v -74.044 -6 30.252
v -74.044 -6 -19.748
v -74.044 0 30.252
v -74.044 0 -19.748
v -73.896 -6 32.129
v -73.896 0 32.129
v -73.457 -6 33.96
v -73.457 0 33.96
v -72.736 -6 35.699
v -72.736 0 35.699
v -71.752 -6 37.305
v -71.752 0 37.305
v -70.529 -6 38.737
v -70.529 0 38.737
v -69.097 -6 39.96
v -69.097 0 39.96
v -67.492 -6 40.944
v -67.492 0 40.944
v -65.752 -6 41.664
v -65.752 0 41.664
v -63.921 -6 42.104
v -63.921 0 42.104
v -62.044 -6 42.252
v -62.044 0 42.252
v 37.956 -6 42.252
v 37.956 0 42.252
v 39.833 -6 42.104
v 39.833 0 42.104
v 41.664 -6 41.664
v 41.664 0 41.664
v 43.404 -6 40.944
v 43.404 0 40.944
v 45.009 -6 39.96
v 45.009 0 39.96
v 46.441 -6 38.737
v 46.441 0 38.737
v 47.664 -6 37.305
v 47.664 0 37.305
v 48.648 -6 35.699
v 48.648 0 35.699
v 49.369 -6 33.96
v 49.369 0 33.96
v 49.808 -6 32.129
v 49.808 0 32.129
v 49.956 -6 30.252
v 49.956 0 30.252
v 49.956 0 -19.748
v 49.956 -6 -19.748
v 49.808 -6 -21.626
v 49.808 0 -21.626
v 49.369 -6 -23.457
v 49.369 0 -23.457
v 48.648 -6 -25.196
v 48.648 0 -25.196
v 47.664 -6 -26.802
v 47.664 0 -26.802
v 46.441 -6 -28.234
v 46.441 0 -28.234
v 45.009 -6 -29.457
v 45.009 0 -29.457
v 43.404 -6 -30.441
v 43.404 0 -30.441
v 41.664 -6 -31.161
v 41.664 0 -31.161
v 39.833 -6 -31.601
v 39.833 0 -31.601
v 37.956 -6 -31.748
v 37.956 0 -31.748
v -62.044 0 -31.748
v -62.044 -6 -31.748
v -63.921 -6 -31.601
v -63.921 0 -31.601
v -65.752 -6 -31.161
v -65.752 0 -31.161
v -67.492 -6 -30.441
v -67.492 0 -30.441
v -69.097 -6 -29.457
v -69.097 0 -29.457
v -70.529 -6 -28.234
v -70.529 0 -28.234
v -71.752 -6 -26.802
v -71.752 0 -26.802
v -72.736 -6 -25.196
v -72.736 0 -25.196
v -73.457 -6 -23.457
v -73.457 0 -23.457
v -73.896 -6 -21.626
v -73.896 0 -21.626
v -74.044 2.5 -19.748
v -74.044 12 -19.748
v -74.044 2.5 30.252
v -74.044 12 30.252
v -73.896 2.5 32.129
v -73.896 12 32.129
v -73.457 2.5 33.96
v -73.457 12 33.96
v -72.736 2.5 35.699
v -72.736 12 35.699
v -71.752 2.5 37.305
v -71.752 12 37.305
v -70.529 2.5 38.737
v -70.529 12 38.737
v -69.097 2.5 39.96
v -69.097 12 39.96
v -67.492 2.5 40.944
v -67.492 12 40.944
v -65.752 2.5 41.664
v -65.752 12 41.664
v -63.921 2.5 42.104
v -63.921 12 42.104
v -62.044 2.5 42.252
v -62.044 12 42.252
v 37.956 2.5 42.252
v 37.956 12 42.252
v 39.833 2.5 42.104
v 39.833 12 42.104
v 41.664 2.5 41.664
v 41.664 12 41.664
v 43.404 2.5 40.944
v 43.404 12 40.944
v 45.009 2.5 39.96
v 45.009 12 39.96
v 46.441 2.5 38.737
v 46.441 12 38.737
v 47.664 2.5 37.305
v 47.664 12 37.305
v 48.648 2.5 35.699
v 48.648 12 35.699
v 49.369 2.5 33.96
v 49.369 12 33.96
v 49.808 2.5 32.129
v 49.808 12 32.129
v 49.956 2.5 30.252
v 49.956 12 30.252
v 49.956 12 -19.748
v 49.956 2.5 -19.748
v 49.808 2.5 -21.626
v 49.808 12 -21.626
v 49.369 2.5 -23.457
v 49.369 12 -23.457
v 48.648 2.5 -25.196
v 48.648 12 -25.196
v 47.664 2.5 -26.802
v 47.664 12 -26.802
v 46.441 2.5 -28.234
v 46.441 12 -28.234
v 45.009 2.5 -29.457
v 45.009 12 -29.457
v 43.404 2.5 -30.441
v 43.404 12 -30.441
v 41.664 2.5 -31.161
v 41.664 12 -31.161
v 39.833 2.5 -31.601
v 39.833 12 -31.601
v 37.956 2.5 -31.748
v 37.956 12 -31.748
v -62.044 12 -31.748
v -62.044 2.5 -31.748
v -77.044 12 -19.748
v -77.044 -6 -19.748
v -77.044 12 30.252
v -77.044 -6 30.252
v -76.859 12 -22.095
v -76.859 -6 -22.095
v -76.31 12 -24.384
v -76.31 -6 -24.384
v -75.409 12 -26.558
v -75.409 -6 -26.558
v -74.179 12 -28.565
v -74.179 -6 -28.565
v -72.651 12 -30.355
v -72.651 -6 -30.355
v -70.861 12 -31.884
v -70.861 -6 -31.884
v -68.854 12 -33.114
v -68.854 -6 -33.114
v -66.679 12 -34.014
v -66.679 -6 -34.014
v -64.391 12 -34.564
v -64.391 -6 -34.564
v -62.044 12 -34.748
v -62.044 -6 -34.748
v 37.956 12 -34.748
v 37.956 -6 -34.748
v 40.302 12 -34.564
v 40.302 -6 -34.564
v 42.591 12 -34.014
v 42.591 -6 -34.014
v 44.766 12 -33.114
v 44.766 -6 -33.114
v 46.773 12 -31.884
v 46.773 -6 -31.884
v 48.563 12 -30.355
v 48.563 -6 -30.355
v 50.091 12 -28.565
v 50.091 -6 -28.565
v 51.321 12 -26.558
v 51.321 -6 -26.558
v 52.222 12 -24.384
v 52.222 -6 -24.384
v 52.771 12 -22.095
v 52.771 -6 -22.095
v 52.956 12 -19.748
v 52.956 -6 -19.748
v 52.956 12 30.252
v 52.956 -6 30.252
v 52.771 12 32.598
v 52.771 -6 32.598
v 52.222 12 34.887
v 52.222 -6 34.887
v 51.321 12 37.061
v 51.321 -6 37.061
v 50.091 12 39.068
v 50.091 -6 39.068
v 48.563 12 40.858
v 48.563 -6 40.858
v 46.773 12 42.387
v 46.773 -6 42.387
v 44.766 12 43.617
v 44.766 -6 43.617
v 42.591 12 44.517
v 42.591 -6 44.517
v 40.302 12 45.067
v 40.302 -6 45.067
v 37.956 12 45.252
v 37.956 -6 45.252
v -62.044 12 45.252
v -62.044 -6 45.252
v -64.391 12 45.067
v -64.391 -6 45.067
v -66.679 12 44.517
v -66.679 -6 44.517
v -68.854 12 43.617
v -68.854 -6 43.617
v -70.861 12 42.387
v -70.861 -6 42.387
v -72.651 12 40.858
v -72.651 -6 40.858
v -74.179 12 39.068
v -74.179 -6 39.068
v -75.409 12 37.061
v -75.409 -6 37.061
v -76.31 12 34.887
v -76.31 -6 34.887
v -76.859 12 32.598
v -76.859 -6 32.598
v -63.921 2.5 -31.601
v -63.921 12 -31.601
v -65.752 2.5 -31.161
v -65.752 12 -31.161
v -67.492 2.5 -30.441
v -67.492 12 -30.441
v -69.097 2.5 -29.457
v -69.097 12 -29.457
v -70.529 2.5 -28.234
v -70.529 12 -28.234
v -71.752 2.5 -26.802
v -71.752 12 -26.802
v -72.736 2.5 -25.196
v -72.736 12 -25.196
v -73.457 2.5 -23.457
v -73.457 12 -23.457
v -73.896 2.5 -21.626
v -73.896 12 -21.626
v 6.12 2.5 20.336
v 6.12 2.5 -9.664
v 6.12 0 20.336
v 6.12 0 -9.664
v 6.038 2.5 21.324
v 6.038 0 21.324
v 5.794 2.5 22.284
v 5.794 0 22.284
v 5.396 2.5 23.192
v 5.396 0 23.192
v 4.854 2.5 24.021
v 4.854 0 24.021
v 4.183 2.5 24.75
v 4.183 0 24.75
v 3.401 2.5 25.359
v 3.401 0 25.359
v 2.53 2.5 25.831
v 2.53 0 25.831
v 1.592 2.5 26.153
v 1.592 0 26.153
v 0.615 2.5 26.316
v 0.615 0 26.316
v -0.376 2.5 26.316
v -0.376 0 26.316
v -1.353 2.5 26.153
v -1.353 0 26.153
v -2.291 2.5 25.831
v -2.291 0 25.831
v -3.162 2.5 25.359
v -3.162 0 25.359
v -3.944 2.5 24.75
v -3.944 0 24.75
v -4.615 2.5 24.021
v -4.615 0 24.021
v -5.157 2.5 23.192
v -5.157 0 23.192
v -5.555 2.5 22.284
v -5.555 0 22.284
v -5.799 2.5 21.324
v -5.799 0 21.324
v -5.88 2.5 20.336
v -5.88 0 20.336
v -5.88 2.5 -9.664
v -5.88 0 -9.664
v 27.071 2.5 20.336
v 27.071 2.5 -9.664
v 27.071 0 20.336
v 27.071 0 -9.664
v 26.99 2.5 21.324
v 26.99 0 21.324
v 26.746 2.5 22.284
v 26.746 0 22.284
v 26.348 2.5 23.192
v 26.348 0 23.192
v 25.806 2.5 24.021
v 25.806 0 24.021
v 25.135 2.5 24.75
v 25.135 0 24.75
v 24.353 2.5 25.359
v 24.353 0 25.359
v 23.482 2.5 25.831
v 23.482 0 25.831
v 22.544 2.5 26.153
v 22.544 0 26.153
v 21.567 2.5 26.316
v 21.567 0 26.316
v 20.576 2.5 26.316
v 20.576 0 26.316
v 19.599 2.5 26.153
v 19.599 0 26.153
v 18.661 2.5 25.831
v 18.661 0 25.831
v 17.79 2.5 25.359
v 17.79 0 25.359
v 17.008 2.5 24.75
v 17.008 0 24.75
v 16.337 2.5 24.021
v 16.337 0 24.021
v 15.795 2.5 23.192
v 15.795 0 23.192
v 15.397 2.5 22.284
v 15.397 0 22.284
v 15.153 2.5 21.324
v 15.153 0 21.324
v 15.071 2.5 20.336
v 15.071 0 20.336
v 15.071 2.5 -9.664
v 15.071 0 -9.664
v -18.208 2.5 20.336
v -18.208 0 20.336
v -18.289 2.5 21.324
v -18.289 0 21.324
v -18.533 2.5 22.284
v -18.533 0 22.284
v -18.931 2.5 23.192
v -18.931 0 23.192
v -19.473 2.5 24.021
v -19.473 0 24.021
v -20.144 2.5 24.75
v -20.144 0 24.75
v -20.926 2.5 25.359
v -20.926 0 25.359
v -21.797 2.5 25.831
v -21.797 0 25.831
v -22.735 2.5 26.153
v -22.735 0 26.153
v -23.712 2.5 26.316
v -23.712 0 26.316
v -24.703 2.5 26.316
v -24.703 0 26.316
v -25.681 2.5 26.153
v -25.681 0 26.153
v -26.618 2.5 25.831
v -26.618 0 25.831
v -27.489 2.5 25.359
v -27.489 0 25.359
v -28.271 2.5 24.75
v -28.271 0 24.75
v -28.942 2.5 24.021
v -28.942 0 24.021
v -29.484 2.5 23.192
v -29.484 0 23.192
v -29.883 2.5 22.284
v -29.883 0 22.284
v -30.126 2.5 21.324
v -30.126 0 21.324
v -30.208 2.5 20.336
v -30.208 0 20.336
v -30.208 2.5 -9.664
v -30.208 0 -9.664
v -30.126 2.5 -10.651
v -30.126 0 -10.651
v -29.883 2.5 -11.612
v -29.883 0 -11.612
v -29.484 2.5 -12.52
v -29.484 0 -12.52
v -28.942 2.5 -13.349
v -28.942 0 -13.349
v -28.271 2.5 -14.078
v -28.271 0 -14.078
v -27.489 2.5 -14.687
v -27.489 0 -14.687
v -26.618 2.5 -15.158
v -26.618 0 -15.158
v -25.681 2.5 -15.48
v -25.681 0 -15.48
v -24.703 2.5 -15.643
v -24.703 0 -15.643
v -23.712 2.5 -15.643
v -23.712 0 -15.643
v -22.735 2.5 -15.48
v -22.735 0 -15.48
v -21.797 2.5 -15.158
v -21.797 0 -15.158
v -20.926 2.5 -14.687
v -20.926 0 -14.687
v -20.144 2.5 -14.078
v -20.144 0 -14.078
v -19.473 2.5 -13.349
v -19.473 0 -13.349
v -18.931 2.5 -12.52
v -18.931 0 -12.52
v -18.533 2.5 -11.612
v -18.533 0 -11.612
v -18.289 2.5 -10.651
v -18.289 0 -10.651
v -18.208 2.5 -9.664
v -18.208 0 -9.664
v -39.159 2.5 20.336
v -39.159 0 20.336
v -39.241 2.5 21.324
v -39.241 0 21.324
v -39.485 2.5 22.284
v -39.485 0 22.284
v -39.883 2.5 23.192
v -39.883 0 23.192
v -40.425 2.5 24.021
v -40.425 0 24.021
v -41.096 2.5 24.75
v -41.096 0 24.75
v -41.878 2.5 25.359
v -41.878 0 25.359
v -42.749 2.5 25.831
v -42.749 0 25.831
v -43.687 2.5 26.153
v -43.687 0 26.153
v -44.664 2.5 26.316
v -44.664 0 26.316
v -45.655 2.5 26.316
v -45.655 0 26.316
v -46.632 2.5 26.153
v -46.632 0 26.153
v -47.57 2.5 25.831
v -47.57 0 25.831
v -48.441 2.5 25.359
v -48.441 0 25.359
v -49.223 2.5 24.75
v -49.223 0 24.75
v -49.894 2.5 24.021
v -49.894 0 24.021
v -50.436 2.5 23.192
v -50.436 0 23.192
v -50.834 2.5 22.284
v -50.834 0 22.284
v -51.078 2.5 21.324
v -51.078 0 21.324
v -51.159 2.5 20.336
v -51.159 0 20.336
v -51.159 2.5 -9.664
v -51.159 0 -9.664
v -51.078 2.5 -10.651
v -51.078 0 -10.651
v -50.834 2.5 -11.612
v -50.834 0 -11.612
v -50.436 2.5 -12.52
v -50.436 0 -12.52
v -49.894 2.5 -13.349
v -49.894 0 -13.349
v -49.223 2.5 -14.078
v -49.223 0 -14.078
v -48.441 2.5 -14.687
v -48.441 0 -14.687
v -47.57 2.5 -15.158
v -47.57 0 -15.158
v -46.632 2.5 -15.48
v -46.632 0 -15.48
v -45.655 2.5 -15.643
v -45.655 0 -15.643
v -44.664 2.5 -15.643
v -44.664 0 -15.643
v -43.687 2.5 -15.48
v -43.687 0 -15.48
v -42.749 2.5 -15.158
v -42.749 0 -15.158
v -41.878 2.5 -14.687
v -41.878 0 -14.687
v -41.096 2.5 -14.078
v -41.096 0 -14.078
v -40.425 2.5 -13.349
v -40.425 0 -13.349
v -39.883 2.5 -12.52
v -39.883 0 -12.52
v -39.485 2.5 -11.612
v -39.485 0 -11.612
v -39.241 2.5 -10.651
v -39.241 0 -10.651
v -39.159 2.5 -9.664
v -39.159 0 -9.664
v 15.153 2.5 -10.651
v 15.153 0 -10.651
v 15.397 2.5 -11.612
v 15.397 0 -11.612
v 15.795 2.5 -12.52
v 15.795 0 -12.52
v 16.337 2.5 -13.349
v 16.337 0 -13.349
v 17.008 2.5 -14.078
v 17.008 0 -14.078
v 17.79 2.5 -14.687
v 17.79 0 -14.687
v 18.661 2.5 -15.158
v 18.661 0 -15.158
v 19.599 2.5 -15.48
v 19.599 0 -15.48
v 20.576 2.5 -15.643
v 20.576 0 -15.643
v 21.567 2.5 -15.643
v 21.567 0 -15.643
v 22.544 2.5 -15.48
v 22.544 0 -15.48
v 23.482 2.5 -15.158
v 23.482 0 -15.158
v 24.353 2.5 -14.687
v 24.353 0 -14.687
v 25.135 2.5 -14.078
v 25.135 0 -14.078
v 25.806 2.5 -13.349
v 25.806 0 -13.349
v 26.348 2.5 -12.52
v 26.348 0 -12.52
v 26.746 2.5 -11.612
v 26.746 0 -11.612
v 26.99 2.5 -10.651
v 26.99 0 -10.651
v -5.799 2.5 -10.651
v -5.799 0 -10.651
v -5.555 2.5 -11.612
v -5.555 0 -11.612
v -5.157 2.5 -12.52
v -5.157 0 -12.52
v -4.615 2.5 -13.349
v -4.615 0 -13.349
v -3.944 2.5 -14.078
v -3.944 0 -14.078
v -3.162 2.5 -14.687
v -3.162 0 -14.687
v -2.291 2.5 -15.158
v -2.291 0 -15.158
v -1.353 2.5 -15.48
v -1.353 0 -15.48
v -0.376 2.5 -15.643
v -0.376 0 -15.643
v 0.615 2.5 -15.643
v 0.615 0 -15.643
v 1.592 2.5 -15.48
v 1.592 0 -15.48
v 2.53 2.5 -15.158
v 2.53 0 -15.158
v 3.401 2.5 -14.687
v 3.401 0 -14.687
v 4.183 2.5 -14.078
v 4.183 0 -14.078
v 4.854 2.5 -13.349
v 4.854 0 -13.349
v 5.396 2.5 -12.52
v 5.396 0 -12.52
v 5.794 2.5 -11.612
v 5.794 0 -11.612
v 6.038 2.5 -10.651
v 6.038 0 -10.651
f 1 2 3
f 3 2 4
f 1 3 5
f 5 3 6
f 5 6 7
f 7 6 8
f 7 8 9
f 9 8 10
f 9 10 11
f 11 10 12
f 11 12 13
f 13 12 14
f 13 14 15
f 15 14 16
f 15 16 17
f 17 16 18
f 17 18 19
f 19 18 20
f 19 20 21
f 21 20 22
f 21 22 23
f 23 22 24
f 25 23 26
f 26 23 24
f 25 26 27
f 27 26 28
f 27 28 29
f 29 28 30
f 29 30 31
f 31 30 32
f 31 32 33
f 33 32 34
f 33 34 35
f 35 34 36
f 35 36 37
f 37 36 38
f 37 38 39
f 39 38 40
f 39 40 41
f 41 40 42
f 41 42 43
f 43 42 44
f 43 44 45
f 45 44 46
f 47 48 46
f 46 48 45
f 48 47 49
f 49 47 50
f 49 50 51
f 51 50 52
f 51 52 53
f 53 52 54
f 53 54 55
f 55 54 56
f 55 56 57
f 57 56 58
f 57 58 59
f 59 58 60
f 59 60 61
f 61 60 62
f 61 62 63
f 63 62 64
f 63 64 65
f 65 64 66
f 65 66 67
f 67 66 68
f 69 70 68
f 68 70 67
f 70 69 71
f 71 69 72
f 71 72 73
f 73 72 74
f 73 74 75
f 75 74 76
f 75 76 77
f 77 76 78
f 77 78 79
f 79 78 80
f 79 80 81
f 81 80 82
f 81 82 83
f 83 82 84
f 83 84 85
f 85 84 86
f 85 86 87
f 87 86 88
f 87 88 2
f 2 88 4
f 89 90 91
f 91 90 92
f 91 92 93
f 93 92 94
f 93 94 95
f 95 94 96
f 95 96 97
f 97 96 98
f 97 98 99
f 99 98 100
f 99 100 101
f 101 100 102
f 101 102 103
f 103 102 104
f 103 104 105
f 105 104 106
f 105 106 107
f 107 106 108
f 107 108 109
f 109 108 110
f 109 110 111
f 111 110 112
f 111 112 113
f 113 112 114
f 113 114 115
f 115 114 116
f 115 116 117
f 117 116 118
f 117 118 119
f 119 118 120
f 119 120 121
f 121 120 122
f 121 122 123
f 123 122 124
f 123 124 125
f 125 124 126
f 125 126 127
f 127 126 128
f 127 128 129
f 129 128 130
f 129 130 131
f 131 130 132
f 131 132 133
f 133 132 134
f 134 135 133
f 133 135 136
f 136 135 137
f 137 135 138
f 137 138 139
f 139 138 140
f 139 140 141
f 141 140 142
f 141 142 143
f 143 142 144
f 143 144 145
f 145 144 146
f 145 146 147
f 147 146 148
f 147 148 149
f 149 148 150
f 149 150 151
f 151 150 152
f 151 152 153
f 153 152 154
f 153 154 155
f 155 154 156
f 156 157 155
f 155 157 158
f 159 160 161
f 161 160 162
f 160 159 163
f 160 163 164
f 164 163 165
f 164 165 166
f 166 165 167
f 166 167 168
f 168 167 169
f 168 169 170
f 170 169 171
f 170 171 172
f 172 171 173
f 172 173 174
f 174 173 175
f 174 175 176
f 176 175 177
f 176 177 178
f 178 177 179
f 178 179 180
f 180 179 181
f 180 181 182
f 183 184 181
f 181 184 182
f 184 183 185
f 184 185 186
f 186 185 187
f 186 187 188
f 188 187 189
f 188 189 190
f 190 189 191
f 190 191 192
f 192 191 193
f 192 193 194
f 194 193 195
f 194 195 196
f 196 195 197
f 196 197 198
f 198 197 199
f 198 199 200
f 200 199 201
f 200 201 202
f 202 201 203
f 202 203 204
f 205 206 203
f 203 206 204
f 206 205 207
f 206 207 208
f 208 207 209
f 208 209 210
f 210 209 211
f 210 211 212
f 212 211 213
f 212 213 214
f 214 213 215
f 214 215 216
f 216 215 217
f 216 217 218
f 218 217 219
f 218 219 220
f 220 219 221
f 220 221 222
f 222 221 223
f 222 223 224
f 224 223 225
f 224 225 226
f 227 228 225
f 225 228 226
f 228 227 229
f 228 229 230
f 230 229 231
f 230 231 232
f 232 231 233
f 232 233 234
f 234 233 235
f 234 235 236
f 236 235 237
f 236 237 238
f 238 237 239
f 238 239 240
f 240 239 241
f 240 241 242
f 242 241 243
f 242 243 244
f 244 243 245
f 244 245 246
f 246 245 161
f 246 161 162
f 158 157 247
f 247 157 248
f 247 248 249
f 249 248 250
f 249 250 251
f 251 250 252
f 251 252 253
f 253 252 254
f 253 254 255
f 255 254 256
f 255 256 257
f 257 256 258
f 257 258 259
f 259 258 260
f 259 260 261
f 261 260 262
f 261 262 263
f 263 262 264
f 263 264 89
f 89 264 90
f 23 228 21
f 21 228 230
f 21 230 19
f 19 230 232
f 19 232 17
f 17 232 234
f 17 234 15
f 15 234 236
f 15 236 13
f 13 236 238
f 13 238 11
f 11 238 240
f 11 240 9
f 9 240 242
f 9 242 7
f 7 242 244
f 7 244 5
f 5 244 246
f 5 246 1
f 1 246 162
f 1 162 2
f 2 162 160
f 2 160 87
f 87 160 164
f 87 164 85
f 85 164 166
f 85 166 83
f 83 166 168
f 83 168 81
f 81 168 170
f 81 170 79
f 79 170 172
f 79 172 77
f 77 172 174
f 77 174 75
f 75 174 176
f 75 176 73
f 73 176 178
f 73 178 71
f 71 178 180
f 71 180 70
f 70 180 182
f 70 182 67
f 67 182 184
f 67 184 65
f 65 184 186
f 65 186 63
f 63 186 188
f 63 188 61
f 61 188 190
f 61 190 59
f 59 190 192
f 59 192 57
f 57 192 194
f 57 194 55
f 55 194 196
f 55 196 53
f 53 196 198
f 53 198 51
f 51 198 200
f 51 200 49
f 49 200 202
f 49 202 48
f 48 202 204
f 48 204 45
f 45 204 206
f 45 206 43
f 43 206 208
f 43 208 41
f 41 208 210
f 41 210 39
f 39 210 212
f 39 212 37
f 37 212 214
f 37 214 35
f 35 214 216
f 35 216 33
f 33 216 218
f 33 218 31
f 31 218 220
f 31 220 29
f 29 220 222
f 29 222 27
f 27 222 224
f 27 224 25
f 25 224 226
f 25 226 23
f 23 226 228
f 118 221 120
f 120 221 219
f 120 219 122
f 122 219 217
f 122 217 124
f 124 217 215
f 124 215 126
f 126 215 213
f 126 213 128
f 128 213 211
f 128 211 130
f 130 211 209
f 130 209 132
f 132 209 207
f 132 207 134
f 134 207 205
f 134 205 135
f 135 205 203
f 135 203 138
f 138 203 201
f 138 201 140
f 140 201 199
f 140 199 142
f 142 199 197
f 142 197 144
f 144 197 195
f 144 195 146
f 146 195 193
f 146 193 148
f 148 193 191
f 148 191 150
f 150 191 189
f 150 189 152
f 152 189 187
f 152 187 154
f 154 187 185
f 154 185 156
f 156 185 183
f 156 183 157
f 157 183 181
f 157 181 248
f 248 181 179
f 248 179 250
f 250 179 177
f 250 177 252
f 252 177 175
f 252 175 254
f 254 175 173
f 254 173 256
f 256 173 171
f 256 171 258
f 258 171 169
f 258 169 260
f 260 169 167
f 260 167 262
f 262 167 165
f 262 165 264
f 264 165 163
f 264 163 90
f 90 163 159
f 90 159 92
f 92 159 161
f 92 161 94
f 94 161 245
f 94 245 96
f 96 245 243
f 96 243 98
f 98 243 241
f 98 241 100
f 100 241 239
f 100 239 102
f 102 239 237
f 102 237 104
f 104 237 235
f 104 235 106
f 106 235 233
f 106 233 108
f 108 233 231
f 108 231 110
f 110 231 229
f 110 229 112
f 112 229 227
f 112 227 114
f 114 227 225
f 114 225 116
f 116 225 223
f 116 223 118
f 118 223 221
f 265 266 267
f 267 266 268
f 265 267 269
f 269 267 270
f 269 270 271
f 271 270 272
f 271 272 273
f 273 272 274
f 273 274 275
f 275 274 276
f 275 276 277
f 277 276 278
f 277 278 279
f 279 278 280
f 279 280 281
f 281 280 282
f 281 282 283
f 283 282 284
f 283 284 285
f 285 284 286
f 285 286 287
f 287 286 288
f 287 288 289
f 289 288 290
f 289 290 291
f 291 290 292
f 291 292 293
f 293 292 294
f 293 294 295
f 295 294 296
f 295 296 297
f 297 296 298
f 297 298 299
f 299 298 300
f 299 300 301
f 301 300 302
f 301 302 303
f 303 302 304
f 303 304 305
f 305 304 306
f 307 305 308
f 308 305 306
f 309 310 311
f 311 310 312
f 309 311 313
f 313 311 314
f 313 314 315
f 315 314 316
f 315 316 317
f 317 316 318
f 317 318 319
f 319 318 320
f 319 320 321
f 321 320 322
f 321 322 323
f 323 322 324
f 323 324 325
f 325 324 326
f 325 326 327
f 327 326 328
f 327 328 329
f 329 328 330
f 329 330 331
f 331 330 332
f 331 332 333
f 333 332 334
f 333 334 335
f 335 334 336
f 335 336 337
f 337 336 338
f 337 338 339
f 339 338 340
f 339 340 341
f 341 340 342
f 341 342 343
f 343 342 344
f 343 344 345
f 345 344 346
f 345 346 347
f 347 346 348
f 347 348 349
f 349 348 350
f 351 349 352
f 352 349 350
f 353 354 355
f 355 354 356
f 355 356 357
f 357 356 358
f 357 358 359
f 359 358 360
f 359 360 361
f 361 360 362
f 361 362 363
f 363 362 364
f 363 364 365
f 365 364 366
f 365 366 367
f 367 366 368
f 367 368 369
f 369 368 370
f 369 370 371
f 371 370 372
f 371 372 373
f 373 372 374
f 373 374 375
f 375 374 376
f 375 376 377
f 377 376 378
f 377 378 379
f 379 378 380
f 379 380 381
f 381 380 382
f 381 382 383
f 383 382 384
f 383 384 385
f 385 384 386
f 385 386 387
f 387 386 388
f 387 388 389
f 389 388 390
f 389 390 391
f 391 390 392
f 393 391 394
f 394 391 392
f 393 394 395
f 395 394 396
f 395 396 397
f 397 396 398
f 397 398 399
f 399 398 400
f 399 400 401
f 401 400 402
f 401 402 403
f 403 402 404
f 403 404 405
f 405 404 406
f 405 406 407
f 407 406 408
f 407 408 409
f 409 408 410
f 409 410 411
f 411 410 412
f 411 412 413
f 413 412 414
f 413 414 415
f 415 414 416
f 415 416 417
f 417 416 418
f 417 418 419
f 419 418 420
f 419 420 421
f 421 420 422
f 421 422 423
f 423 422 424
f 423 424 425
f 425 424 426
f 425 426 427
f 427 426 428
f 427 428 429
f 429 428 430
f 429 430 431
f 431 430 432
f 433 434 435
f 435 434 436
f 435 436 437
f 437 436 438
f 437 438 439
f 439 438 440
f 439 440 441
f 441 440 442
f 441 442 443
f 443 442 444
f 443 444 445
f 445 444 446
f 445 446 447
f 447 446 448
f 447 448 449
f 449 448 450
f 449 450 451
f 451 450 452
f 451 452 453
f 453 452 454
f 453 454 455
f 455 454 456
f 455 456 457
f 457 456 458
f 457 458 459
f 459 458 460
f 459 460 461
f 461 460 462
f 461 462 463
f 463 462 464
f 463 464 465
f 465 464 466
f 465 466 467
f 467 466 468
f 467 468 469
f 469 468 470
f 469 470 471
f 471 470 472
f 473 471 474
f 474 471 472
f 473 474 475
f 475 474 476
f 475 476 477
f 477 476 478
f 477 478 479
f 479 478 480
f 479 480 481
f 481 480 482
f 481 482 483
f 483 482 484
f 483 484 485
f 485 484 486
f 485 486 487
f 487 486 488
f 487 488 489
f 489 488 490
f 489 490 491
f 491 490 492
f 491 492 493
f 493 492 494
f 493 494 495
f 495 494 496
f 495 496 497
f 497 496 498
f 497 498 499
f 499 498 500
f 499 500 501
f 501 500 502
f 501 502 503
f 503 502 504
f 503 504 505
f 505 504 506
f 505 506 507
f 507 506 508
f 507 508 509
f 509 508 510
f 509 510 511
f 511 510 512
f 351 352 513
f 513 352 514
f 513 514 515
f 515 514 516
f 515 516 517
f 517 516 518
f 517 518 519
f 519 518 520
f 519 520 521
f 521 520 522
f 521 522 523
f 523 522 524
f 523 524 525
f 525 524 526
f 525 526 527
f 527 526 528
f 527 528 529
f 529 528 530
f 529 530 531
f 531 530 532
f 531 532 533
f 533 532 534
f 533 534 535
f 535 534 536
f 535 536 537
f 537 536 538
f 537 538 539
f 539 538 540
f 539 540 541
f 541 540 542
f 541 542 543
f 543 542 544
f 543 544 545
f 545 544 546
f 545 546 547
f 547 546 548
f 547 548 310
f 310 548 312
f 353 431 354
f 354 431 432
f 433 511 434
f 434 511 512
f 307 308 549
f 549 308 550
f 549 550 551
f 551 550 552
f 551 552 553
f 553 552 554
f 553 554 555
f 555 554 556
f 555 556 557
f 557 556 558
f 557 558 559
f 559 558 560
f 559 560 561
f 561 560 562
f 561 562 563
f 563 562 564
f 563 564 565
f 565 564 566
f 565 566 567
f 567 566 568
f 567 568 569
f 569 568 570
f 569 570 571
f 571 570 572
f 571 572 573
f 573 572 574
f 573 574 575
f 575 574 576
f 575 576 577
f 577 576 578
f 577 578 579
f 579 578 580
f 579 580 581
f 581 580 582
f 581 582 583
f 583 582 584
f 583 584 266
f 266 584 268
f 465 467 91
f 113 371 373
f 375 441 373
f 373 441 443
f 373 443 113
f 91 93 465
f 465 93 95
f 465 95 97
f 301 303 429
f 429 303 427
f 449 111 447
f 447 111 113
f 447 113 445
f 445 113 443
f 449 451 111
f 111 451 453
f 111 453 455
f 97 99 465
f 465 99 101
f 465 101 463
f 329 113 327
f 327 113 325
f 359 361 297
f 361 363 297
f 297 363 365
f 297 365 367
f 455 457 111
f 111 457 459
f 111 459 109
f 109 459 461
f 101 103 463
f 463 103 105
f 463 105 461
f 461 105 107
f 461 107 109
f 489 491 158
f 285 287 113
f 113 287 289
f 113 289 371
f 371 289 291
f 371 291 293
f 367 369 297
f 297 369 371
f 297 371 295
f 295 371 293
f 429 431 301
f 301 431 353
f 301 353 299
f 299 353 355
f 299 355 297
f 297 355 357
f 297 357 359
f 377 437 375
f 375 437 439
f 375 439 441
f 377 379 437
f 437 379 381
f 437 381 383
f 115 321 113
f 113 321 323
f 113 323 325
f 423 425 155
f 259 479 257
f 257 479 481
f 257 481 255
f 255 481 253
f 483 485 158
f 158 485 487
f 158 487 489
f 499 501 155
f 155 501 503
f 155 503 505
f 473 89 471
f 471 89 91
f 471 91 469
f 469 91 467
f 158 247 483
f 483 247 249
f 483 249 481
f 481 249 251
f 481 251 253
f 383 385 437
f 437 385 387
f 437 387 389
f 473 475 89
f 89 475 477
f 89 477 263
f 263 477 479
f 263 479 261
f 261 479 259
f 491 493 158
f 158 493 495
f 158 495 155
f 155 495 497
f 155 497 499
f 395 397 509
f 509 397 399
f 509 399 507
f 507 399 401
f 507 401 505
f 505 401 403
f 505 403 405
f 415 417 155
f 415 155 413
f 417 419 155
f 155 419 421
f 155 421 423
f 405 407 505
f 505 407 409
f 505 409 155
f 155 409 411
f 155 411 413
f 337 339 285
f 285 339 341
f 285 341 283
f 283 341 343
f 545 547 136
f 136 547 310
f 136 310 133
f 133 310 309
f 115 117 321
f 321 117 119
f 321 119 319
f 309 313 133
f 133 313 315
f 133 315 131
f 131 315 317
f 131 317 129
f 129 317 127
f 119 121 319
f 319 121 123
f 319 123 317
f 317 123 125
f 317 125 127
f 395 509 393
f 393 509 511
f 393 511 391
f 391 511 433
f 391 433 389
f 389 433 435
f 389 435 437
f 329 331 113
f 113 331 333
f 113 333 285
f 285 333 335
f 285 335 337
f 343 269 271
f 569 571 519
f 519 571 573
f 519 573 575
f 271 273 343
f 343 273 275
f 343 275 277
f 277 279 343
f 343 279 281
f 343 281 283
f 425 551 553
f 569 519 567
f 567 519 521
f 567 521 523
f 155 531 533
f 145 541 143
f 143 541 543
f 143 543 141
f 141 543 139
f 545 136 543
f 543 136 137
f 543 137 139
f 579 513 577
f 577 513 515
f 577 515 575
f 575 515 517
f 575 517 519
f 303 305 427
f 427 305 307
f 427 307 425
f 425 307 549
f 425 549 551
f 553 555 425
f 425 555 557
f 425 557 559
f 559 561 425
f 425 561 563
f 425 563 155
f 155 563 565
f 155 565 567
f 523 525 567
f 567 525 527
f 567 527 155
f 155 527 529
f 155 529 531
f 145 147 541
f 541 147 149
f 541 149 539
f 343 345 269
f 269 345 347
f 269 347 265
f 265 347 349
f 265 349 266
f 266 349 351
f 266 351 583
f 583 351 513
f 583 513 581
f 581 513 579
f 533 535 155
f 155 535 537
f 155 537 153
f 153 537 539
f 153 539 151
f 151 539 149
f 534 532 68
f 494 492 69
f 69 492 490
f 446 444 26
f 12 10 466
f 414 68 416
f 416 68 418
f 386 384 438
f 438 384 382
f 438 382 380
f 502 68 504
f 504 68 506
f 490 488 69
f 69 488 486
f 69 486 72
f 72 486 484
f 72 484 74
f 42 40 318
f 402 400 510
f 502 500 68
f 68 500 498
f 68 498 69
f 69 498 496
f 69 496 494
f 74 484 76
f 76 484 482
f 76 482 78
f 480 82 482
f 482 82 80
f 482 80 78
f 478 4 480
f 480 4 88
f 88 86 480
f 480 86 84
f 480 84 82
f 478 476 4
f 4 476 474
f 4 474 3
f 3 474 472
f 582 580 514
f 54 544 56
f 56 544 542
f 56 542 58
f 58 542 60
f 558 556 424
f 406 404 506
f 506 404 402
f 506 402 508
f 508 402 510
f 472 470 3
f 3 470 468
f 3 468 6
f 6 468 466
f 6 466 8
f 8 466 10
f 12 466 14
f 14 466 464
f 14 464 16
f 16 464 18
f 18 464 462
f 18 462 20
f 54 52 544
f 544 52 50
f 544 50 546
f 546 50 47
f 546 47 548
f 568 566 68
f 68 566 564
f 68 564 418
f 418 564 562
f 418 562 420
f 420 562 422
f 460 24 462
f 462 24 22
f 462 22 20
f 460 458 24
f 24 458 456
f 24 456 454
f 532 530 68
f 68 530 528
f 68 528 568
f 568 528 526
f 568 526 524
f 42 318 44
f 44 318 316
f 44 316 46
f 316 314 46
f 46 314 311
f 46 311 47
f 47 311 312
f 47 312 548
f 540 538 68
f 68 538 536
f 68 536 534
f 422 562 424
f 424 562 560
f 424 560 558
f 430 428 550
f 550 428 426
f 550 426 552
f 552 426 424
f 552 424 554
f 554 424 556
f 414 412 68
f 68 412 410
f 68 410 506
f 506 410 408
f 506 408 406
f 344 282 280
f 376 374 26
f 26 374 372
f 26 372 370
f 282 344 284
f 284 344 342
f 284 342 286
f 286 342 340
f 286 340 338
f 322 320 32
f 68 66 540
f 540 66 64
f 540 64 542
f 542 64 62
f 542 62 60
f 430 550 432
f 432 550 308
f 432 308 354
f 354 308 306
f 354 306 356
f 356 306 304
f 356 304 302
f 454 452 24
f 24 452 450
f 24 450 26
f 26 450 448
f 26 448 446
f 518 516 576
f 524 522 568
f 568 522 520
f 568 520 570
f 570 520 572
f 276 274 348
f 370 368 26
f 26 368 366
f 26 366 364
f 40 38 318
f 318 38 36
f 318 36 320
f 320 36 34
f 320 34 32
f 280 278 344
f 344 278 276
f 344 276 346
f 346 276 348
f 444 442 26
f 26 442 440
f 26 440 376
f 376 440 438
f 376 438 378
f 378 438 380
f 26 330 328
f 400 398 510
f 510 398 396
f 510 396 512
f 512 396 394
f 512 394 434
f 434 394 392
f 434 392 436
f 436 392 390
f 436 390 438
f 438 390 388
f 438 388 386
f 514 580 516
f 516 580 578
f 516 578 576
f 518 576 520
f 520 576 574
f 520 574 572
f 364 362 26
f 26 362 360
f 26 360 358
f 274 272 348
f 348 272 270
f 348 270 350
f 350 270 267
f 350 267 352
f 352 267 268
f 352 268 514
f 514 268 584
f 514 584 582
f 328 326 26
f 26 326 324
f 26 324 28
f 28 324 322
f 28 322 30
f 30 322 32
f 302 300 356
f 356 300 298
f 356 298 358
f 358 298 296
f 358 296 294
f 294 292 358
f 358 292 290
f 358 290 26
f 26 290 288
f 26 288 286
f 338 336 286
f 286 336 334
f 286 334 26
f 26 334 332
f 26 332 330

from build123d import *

# Parameters (mm, degrees)
BOSS_EXTRUDE1_DEPTH      = 12
BOSS_EXTRUDE1_DEPTH_BACK = 6
BOSS_EXTRUDE2_DEPTH      = 2.5


with BuildPart() as part:
    # Sketch1 → Boss-Extrude1 (new, two sides: drawn at the far end of the back side and taken through both)
    with BuildSketch(Plane(origin=(0, 0, 0), x_dir=(1, 0, 0), z_dir=(0, 1, 0)).offset(-BOSS_EXTRUDE1_DEPTH_BACK)):
        with BuildLine():
            Line((37.955974843, 34.748427673), (-62.044025157, 34.748427673))
            ThreePointArc((-62.044025157, 34.748427673), (-72.650626875, 30.355029391), (-77.044025157, 19.748427673))
            Line((-77.044025157, 19.748427673), (-77.044025157, -30.251572327))
            ThreePointArc((-77.044025157, -30.251572327), (-72.650626875, -40.858174045), (-62.044025157, -45.251572327))
            Line((-62.044025157, -45.251572327), (37.955974843, -45.251572327))
            ThreePointArc((37.955974843, -45.251572327), (48.562576561, -40.858174045), (52.955974843, -30.251572327))
            Line((52.955974843, -30.251572327), (52.955974843, 19.748427673))
            ThreePointArc((52.955974843, 19.748427673), (48.562576561, 30.355029391), (37.955974843, 34.748427673))
        make_face()
        with BuildLine():
            ThreePointArc((-74.044025157, 19.748427673), (-70.529306531, 28.233709047), (-62.044025157, 31.748427673))
            Line((-62.044025157, 31.748427673), (37.955974843, 31.748427673))
            ThreePointArc((37.955974843, 31.748427673), (46.441256217, 28.233709047), (49.955974843, 19.748427673))
            Line((49.955974843, 19.748427673), (49.955974843, -30.251572327))
            ThreePointArc((49.955974843, -30.251572327), (46.441256217, -38.736853701), (37.955974843, -42.251572327))
            Line((37.955974843, -42.251572327), (-62.044025157, -42.251572327))
            ThreePointArc((-62.044025157, -42.251572327), (-70.529306531, -38.736853701), (-74.044025157, -30.251572327))
            Line((-74.044025157, -30.251572327), (-74.044025157, 19.748427673))
        make_face(mode=Mode.SUBTRACT)
    extrude(amount=BOSS_EXTRUDE1_DEPTH + BOSS_EXTRUDE1_DEPTH_BACK)

    # Sketch1<3> → Boss-Extrude2 (add)
    with BuildSketch(Plane(origin=(0, 0, 0), x_dir=(1, 0, 0), z_dir=(0, 1, 0))):
        with BuildLine():
            Line((37.955974843, 31.748427673), (-62.044025157, 31.748427673))
            ThreePointArc((-62.044025157, 31.748427673), (-70.529306531, 28.233709047), (-74.044025157, 19.748427673))
            Line((-74.044025157, 19.748427673), (-74.044025157, -30.251572327))
            ThreePointArc((-74.044025157, -30.251572327), (-70.529306531, -38.736853701), (-62.044025157, -42.251572327))
            Line((-62.044025157, -42.251572327), (37.955974843, -42.251572327))
            ThreePointArc((37.955974843, -42.251572327), (46.441256217, -38.736853701), (49.955974843, -30.251572327))
            Line((49.955974843, -30.251572327), (49.955974843, 19.748427673))
            ThreePointArc((49.955974843, 19.748427673), (46.441256217, 28.233709047), (37.955974843, 31.748427673))
        make_face()
        with BuildLine():
            ThreePointArc((-51.159476074, 9.66385349), (-45.159476074, 15.66385349), (-39.159476074, 9.66385349))
            Line((-39.159476074, 9.66385349), (-39.159476074, -20.33614651))
            ThreePointArc((-39.159476074, -20.33614651), (-45.159476074, -26.33614651), (-51.159476074, -20.33614651))
            Line((-51.159476074, -20.33614651), (-51.159476074, 9.66385349))
        make_face(mode=Mode.SUBTRACT)
        with BuildLine():
            ThreePointArc((-30.207633374, 9.66385349), (-24.207633374, 15.66385349), (-18.207633374, 9.66385349))
            Line((-18.207633374, 9.66385349), (-18.207633374, -20.33614651))
            ThreePointArc((-18.207633374, -20.33614651), (-24.207633374, -26.33614651), (-30.207633374, -20.33614651))
            Line((-30.207633374, -20.33614651), (-30.207633374, 9.66385349))
        make_face(mode=Mode.SUBTRACT)
        with BuildLine():
            Line((-5.880416941, -20.33614651), (-5.880416941, 9.66385349))
            ThreePointArc((-5.880416941, 9.66385349), (0.119583059, 15.66385349), (6.119583059, 9.66385349))
            Line((6.119583059, 9.66385349), (6.119583059, -20.33614651))
            ThreePointArc((6.119583059, -20.33614651), (0.119583059, -26.33614651), (-5.880416941, -20.33614651))
        make_face(mode=Mode.SUBTRACT)
        with BuildLine():
            Line((15.07142576, -20.33614651), (15.07142576, 9.66385349))
            ThreePointArc((15.07142576, 9.66385349), (21.07142576, 15.66385349), (27.07142576, 9.66385349))
            Line((27.07142576, 9.66385349), (27.07142576, -20.33614651))
            ThreePointArc((27.07142576, -20.33614651), (21.07142576, -26.33614651), (15.07142576, -20.33614651))
        make_face(mode=Mode.SUBTRACT)
    extrude(amount=BOSS_EXTRUDE2_DEPTH)


solid = part.part
